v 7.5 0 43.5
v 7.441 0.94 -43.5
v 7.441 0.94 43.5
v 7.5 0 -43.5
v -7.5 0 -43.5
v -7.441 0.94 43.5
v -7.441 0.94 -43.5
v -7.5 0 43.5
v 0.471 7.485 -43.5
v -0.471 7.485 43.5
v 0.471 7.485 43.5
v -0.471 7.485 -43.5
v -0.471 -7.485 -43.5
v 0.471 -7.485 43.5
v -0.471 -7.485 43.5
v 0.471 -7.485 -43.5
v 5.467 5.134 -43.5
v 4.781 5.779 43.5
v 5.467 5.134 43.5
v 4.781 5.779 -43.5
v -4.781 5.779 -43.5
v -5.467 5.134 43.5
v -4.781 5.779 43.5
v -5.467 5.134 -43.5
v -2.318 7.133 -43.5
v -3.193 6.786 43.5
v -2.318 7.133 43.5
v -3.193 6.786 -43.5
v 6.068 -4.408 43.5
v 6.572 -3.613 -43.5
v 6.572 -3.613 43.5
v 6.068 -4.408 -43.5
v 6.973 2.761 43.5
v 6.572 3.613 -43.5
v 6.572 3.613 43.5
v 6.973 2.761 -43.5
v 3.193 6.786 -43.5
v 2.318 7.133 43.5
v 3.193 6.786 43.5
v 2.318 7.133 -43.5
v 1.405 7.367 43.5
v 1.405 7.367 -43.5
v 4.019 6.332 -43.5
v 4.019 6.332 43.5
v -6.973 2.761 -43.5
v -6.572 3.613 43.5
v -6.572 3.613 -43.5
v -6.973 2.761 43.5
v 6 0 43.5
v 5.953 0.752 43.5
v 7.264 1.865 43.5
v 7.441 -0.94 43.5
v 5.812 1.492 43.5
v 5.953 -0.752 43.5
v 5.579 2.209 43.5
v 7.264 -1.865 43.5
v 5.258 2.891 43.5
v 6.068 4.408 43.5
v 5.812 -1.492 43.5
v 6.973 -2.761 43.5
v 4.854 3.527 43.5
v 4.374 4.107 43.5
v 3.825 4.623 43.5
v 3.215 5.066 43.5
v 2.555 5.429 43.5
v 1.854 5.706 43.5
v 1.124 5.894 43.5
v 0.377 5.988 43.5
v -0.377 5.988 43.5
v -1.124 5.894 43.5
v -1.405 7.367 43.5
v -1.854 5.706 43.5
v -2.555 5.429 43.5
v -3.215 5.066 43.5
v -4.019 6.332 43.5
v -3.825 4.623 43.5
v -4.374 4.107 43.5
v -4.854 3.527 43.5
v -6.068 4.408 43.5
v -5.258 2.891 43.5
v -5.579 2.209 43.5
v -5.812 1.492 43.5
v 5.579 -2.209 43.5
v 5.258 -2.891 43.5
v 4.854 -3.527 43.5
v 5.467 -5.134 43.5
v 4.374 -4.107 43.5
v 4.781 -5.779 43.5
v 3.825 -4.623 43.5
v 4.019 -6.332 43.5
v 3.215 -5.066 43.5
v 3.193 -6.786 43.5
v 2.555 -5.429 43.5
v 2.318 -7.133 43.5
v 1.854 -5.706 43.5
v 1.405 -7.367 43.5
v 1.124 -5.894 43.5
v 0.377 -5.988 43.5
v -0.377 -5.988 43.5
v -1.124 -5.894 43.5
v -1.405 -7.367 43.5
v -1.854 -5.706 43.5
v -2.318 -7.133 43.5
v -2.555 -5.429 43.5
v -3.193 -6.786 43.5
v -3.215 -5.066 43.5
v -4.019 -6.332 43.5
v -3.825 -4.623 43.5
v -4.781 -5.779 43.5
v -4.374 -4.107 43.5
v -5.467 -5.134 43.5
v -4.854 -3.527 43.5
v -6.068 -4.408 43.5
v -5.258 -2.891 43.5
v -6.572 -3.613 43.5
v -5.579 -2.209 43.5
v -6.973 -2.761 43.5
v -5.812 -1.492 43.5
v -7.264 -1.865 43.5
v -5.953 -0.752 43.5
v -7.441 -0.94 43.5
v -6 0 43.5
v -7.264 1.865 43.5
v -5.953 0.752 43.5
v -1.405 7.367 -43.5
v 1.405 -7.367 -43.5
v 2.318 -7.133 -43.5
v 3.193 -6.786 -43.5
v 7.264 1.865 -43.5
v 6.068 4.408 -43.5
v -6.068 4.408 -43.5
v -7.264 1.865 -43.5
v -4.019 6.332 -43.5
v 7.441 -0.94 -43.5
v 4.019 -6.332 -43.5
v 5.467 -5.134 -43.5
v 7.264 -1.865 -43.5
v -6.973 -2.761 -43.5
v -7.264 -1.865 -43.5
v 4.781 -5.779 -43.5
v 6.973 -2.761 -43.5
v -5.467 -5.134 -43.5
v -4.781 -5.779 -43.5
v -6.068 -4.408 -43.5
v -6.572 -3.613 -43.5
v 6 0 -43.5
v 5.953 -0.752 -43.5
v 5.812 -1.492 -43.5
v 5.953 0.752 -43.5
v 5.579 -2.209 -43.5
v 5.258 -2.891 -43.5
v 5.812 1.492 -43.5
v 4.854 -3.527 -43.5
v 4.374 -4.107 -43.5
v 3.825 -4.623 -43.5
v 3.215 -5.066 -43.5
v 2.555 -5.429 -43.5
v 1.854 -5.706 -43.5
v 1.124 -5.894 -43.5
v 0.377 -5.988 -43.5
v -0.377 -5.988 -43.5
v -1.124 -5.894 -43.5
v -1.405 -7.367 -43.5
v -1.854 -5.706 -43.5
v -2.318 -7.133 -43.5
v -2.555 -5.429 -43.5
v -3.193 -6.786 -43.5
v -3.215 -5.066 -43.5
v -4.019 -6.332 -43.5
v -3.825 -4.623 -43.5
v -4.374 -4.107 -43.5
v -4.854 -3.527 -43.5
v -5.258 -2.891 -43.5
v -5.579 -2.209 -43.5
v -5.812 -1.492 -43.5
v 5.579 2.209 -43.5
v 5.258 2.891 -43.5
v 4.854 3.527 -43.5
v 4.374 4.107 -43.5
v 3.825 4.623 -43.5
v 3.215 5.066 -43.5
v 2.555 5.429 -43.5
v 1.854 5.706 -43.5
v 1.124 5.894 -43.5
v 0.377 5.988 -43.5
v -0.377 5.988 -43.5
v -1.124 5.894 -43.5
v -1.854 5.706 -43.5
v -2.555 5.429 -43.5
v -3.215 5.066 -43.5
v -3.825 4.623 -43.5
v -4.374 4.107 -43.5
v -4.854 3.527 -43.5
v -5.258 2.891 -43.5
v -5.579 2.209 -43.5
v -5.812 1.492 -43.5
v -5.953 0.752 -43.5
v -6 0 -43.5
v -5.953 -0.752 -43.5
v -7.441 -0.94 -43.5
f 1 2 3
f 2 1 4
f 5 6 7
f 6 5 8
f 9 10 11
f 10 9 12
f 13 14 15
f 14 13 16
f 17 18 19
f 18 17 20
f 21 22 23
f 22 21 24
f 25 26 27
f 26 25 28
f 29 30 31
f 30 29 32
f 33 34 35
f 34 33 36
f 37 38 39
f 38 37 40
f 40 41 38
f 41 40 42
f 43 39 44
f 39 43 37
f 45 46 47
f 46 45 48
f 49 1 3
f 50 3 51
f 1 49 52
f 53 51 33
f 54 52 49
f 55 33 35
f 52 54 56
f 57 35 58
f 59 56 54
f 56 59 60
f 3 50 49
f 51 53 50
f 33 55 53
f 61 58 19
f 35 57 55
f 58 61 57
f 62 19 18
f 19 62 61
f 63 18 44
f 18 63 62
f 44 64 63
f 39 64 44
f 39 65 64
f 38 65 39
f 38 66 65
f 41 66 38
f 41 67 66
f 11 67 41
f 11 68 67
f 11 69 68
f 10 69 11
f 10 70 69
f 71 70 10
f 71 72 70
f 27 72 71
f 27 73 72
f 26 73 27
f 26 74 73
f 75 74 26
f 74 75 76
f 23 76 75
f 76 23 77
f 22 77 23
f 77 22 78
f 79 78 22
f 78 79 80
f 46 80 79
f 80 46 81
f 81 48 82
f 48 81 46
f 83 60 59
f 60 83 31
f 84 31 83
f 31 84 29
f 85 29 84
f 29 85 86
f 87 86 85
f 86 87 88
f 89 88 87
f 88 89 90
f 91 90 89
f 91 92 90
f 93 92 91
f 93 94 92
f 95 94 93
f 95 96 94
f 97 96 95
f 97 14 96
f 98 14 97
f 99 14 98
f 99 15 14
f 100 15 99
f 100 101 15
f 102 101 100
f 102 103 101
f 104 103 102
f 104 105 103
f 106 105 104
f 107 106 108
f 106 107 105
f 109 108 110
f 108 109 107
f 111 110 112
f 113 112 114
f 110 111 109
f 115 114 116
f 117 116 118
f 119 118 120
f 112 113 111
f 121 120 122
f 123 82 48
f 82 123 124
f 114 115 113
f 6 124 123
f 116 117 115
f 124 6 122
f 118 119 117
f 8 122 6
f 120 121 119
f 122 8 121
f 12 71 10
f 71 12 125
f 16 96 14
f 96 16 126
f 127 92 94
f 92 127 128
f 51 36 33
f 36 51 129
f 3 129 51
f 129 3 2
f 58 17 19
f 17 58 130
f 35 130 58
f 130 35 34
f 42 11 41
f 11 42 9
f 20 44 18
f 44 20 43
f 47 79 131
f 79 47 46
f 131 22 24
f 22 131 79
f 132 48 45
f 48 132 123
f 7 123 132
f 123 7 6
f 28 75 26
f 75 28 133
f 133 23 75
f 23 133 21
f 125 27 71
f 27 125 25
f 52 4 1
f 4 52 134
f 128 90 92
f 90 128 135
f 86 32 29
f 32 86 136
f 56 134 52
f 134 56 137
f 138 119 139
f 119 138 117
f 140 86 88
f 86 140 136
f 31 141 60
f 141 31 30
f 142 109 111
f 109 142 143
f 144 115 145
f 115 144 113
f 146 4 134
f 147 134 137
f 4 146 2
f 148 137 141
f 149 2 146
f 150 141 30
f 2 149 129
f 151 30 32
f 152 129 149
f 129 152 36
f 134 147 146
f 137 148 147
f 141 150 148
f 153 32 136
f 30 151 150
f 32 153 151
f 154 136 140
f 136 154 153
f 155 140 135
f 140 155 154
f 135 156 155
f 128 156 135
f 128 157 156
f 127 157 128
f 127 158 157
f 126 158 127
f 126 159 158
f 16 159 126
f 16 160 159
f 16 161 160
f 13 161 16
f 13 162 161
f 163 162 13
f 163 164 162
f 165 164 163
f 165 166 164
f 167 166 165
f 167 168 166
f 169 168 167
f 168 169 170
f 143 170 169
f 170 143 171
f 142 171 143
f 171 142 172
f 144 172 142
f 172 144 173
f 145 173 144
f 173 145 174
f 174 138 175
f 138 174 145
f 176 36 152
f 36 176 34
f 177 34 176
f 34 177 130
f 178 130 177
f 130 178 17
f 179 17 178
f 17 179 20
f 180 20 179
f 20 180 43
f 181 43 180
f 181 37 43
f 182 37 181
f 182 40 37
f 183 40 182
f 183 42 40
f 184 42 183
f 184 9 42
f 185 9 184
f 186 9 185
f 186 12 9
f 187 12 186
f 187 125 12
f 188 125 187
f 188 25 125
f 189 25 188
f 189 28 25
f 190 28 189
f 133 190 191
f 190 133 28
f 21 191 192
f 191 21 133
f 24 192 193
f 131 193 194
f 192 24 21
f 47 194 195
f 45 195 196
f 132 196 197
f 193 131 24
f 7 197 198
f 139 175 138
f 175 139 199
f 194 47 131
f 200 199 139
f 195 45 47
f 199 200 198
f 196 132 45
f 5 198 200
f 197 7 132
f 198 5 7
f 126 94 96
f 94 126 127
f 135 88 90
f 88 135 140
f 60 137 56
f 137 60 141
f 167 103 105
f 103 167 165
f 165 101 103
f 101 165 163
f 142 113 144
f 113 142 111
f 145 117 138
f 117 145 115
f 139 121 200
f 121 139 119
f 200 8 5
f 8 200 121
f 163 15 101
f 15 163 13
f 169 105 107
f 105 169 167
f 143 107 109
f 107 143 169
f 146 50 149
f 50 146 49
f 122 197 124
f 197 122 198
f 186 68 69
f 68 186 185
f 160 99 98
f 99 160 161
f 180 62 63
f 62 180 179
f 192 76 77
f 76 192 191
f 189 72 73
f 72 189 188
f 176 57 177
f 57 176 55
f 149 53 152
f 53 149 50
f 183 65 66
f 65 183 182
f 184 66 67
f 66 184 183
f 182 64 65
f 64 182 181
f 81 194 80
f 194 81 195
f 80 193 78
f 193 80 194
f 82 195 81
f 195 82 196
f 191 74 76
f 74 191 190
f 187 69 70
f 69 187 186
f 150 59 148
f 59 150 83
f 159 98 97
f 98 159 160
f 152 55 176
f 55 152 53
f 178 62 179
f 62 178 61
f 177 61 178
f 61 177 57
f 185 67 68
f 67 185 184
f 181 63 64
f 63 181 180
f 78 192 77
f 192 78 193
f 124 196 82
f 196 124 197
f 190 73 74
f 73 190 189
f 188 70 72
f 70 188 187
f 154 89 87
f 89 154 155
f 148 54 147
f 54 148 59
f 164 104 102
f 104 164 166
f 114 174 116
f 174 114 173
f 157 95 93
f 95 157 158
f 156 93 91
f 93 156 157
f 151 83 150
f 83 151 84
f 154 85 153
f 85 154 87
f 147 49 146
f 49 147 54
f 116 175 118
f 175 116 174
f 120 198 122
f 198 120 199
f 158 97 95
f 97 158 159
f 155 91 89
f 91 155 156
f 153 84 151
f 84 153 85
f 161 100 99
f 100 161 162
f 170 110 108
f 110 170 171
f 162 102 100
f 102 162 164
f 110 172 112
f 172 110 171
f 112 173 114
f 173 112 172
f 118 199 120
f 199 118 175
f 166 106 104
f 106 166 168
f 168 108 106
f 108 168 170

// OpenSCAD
$fn = 50;


difference() {
	union() {
		translate(v = [0, 0, -43.5000000000]) {
			cylinder(h = 87, r = 7.5000000000);
		}
	}
	union() {
		translate(v = [0, 0, -100.0000000000]) {
			cylinder(h = 200, r = 6);
		}
	}
}
